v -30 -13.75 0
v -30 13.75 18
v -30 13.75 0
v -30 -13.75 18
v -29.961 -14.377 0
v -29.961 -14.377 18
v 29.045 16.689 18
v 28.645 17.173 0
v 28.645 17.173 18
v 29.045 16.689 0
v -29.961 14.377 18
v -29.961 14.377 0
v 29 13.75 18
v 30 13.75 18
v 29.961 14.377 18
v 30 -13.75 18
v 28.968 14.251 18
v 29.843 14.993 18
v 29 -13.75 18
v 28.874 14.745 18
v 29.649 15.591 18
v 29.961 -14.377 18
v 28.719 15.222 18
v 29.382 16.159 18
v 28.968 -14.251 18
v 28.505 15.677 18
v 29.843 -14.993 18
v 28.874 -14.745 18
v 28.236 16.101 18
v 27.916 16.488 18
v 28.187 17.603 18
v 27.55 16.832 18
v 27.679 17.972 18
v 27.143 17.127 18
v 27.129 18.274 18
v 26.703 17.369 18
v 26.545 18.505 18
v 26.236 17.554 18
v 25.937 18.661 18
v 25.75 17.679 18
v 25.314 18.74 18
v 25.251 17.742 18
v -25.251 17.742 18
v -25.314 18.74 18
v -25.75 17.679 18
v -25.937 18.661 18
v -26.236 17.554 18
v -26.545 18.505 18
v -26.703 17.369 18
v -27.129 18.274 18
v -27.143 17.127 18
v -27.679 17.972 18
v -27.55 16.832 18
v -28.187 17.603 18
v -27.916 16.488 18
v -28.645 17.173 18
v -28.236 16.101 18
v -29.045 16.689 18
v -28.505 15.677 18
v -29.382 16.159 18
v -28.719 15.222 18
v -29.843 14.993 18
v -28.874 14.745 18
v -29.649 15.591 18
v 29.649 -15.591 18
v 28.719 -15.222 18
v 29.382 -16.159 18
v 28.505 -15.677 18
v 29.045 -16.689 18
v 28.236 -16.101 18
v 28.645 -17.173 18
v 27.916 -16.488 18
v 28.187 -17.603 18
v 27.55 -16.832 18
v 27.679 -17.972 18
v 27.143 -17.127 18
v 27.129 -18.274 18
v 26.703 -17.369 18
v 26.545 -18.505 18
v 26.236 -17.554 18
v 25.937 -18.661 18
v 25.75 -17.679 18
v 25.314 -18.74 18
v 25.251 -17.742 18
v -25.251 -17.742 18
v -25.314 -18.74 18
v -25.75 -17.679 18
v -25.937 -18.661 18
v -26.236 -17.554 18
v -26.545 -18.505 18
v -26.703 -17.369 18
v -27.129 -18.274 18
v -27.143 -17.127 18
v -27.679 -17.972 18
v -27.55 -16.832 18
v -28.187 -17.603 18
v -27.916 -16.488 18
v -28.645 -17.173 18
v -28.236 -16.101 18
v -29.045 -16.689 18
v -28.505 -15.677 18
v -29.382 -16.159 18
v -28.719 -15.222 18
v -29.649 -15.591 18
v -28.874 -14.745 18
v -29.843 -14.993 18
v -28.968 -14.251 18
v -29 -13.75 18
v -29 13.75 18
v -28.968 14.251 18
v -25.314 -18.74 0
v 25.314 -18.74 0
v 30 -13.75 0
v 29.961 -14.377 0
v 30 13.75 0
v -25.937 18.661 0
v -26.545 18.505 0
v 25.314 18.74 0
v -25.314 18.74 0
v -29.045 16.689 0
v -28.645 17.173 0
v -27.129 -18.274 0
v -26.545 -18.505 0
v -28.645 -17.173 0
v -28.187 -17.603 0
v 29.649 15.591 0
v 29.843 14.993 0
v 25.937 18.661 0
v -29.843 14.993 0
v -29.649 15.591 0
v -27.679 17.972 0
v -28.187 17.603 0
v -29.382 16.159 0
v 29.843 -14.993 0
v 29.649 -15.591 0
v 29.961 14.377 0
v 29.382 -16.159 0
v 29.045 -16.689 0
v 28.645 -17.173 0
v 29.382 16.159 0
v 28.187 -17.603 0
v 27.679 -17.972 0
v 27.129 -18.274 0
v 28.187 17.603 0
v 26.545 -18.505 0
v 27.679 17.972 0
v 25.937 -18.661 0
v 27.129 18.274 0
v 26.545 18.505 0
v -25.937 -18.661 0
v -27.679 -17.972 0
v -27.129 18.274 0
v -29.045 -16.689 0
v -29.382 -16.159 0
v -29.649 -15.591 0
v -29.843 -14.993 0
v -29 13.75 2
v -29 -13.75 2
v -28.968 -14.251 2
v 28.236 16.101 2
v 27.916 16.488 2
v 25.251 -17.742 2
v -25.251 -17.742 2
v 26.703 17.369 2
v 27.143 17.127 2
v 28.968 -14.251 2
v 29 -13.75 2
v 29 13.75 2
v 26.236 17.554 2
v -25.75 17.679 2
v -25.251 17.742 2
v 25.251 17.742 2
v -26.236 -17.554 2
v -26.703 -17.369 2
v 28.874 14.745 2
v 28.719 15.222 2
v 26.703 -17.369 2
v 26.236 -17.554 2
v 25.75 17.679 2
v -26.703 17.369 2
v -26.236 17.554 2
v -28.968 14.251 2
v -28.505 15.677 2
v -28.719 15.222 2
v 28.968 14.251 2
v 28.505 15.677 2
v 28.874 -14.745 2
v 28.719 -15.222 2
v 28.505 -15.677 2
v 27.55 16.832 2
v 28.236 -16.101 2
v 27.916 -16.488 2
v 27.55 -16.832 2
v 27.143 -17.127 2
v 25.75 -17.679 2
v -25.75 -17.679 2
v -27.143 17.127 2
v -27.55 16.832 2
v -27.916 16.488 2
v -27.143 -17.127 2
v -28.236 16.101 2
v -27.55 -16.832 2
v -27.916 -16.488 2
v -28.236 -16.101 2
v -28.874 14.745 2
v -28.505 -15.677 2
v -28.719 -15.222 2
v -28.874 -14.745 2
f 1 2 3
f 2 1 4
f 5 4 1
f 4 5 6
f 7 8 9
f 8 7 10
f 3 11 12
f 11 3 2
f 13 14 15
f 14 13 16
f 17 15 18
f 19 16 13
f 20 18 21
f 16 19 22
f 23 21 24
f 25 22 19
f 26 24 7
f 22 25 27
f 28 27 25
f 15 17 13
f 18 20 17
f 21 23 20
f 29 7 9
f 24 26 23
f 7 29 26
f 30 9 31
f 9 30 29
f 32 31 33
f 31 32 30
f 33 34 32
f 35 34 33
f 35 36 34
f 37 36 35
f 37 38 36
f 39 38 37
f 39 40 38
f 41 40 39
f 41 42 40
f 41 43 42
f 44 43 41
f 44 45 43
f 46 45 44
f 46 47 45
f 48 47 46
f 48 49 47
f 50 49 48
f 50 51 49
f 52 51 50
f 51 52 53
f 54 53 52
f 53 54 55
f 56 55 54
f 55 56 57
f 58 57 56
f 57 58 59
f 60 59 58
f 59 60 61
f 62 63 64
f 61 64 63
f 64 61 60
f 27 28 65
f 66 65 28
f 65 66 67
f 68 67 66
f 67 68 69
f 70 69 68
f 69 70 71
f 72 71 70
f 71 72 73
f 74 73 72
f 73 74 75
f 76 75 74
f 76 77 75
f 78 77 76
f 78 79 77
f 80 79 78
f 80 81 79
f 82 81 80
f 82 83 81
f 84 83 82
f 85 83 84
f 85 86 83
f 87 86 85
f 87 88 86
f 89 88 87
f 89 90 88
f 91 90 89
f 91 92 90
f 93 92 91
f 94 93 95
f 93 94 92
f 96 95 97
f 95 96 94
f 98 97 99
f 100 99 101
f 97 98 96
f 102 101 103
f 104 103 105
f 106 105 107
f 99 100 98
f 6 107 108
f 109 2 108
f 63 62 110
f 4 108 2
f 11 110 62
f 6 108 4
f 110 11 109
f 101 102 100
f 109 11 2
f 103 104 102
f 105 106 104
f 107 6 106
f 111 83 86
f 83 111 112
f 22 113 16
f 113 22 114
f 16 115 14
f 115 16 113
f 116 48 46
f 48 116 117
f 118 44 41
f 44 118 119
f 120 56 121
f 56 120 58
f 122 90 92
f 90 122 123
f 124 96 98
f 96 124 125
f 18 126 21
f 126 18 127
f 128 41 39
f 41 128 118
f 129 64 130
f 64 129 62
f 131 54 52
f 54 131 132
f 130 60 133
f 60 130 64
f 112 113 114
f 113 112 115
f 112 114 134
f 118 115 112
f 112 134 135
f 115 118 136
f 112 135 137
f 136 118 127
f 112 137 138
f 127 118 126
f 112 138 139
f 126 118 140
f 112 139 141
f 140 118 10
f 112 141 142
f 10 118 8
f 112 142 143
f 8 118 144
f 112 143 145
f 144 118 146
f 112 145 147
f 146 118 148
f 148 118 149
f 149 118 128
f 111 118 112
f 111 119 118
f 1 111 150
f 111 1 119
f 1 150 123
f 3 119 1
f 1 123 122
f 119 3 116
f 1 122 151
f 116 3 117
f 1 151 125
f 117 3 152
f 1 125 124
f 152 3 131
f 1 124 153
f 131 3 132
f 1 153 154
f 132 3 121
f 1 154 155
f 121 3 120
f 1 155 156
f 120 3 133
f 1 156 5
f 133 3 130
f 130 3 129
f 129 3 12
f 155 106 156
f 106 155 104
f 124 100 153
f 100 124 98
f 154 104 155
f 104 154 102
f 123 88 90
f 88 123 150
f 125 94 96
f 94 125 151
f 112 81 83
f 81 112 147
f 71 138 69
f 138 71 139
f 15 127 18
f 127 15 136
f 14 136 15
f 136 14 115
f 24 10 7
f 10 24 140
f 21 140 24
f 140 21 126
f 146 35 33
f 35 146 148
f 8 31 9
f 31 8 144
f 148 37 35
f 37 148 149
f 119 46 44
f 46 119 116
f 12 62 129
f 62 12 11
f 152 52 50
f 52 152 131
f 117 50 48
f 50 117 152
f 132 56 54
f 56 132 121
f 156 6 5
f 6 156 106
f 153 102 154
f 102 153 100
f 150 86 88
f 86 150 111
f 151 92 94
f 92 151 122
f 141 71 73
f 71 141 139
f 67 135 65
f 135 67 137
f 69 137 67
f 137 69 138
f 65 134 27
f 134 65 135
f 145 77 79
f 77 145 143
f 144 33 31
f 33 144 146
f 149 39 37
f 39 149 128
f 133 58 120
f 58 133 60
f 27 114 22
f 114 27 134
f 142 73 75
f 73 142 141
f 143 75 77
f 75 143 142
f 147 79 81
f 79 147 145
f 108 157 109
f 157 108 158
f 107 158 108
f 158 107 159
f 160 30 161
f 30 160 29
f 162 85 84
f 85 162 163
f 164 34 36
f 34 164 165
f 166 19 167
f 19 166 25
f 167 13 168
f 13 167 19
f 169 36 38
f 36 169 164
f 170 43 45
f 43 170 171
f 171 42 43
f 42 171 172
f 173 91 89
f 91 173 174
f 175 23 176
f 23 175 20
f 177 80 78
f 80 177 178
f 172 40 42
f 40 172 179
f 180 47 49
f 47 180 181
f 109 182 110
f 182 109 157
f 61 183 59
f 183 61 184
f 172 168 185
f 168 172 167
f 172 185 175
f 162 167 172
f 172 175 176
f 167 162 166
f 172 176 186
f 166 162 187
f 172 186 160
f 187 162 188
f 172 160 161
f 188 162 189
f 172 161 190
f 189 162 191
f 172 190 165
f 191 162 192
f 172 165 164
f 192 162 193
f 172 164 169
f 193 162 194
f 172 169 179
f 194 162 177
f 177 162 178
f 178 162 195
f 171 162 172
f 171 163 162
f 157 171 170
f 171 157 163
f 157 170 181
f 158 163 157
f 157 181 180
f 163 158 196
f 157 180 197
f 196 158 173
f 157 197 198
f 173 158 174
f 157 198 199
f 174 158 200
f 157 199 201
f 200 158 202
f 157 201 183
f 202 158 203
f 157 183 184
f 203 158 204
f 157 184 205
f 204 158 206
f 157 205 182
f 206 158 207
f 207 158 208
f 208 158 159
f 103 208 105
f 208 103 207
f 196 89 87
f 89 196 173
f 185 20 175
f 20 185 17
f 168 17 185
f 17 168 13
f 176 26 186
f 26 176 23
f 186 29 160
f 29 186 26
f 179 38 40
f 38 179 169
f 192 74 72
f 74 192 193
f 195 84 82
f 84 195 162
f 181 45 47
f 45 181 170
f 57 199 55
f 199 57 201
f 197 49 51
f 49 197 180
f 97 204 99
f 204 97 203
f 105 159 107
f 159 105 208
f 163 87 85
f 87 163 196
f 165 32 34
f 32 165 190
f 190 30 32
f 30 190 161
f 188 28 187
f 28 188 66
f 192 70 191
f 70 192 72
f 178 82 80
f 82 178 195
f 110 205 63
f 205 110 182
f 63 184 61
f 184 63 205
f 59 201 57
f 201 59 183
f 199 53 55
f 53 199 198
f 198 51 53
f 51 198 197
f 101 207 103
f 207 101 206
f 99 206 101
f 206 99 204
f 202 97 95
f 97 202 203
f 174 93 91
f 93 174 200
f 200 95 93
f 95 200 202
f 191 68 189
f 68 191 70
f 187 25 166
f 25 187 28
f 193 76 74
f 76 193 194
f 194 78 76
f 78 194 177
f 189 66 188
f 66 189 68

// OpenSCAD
$fn = 50;


difference() {
	union() {
		hull() {
			translate(v = [-25.0000000000, 13.7500000000, 0]) {
				cylinder(h = 18, r = 5);
			}
			translate(v = [25.0000000000, 13.7500000000, 0]) {
				cylinder(h = 18, r = 5);
			}
			translate(v = [-25.0000000000, -13.7500000000, 0]) {
				cylinder(h = 18, r = 5);
			}
			translate(v = [25.0000000000, -13.7500000000, 0]) {
				cylinder(h = 18, r = 5);
			}
		}
	}
	union() {
		translate(v = [0, 0, 2]) {
			hull() {
				translate(v = [-25.0000000000, 13.7500000000, 0]) {
					cylinder(h = 16, r = 4);
				}
				translate(v = [25.0000000000, 13.7500000000, 0]) {
					cylinder(h = 16, r = 4);
				}
				translate(v = [-25.0000000000, -13.7500000000, 0]) {
					cylinder(h = 16, r = 4);
				}
				translate(v = [25.0000000000, -13.7500000000, 0]) {
					cylinder(h = 16, r = 4);
				}
			}
		}
	}
}
